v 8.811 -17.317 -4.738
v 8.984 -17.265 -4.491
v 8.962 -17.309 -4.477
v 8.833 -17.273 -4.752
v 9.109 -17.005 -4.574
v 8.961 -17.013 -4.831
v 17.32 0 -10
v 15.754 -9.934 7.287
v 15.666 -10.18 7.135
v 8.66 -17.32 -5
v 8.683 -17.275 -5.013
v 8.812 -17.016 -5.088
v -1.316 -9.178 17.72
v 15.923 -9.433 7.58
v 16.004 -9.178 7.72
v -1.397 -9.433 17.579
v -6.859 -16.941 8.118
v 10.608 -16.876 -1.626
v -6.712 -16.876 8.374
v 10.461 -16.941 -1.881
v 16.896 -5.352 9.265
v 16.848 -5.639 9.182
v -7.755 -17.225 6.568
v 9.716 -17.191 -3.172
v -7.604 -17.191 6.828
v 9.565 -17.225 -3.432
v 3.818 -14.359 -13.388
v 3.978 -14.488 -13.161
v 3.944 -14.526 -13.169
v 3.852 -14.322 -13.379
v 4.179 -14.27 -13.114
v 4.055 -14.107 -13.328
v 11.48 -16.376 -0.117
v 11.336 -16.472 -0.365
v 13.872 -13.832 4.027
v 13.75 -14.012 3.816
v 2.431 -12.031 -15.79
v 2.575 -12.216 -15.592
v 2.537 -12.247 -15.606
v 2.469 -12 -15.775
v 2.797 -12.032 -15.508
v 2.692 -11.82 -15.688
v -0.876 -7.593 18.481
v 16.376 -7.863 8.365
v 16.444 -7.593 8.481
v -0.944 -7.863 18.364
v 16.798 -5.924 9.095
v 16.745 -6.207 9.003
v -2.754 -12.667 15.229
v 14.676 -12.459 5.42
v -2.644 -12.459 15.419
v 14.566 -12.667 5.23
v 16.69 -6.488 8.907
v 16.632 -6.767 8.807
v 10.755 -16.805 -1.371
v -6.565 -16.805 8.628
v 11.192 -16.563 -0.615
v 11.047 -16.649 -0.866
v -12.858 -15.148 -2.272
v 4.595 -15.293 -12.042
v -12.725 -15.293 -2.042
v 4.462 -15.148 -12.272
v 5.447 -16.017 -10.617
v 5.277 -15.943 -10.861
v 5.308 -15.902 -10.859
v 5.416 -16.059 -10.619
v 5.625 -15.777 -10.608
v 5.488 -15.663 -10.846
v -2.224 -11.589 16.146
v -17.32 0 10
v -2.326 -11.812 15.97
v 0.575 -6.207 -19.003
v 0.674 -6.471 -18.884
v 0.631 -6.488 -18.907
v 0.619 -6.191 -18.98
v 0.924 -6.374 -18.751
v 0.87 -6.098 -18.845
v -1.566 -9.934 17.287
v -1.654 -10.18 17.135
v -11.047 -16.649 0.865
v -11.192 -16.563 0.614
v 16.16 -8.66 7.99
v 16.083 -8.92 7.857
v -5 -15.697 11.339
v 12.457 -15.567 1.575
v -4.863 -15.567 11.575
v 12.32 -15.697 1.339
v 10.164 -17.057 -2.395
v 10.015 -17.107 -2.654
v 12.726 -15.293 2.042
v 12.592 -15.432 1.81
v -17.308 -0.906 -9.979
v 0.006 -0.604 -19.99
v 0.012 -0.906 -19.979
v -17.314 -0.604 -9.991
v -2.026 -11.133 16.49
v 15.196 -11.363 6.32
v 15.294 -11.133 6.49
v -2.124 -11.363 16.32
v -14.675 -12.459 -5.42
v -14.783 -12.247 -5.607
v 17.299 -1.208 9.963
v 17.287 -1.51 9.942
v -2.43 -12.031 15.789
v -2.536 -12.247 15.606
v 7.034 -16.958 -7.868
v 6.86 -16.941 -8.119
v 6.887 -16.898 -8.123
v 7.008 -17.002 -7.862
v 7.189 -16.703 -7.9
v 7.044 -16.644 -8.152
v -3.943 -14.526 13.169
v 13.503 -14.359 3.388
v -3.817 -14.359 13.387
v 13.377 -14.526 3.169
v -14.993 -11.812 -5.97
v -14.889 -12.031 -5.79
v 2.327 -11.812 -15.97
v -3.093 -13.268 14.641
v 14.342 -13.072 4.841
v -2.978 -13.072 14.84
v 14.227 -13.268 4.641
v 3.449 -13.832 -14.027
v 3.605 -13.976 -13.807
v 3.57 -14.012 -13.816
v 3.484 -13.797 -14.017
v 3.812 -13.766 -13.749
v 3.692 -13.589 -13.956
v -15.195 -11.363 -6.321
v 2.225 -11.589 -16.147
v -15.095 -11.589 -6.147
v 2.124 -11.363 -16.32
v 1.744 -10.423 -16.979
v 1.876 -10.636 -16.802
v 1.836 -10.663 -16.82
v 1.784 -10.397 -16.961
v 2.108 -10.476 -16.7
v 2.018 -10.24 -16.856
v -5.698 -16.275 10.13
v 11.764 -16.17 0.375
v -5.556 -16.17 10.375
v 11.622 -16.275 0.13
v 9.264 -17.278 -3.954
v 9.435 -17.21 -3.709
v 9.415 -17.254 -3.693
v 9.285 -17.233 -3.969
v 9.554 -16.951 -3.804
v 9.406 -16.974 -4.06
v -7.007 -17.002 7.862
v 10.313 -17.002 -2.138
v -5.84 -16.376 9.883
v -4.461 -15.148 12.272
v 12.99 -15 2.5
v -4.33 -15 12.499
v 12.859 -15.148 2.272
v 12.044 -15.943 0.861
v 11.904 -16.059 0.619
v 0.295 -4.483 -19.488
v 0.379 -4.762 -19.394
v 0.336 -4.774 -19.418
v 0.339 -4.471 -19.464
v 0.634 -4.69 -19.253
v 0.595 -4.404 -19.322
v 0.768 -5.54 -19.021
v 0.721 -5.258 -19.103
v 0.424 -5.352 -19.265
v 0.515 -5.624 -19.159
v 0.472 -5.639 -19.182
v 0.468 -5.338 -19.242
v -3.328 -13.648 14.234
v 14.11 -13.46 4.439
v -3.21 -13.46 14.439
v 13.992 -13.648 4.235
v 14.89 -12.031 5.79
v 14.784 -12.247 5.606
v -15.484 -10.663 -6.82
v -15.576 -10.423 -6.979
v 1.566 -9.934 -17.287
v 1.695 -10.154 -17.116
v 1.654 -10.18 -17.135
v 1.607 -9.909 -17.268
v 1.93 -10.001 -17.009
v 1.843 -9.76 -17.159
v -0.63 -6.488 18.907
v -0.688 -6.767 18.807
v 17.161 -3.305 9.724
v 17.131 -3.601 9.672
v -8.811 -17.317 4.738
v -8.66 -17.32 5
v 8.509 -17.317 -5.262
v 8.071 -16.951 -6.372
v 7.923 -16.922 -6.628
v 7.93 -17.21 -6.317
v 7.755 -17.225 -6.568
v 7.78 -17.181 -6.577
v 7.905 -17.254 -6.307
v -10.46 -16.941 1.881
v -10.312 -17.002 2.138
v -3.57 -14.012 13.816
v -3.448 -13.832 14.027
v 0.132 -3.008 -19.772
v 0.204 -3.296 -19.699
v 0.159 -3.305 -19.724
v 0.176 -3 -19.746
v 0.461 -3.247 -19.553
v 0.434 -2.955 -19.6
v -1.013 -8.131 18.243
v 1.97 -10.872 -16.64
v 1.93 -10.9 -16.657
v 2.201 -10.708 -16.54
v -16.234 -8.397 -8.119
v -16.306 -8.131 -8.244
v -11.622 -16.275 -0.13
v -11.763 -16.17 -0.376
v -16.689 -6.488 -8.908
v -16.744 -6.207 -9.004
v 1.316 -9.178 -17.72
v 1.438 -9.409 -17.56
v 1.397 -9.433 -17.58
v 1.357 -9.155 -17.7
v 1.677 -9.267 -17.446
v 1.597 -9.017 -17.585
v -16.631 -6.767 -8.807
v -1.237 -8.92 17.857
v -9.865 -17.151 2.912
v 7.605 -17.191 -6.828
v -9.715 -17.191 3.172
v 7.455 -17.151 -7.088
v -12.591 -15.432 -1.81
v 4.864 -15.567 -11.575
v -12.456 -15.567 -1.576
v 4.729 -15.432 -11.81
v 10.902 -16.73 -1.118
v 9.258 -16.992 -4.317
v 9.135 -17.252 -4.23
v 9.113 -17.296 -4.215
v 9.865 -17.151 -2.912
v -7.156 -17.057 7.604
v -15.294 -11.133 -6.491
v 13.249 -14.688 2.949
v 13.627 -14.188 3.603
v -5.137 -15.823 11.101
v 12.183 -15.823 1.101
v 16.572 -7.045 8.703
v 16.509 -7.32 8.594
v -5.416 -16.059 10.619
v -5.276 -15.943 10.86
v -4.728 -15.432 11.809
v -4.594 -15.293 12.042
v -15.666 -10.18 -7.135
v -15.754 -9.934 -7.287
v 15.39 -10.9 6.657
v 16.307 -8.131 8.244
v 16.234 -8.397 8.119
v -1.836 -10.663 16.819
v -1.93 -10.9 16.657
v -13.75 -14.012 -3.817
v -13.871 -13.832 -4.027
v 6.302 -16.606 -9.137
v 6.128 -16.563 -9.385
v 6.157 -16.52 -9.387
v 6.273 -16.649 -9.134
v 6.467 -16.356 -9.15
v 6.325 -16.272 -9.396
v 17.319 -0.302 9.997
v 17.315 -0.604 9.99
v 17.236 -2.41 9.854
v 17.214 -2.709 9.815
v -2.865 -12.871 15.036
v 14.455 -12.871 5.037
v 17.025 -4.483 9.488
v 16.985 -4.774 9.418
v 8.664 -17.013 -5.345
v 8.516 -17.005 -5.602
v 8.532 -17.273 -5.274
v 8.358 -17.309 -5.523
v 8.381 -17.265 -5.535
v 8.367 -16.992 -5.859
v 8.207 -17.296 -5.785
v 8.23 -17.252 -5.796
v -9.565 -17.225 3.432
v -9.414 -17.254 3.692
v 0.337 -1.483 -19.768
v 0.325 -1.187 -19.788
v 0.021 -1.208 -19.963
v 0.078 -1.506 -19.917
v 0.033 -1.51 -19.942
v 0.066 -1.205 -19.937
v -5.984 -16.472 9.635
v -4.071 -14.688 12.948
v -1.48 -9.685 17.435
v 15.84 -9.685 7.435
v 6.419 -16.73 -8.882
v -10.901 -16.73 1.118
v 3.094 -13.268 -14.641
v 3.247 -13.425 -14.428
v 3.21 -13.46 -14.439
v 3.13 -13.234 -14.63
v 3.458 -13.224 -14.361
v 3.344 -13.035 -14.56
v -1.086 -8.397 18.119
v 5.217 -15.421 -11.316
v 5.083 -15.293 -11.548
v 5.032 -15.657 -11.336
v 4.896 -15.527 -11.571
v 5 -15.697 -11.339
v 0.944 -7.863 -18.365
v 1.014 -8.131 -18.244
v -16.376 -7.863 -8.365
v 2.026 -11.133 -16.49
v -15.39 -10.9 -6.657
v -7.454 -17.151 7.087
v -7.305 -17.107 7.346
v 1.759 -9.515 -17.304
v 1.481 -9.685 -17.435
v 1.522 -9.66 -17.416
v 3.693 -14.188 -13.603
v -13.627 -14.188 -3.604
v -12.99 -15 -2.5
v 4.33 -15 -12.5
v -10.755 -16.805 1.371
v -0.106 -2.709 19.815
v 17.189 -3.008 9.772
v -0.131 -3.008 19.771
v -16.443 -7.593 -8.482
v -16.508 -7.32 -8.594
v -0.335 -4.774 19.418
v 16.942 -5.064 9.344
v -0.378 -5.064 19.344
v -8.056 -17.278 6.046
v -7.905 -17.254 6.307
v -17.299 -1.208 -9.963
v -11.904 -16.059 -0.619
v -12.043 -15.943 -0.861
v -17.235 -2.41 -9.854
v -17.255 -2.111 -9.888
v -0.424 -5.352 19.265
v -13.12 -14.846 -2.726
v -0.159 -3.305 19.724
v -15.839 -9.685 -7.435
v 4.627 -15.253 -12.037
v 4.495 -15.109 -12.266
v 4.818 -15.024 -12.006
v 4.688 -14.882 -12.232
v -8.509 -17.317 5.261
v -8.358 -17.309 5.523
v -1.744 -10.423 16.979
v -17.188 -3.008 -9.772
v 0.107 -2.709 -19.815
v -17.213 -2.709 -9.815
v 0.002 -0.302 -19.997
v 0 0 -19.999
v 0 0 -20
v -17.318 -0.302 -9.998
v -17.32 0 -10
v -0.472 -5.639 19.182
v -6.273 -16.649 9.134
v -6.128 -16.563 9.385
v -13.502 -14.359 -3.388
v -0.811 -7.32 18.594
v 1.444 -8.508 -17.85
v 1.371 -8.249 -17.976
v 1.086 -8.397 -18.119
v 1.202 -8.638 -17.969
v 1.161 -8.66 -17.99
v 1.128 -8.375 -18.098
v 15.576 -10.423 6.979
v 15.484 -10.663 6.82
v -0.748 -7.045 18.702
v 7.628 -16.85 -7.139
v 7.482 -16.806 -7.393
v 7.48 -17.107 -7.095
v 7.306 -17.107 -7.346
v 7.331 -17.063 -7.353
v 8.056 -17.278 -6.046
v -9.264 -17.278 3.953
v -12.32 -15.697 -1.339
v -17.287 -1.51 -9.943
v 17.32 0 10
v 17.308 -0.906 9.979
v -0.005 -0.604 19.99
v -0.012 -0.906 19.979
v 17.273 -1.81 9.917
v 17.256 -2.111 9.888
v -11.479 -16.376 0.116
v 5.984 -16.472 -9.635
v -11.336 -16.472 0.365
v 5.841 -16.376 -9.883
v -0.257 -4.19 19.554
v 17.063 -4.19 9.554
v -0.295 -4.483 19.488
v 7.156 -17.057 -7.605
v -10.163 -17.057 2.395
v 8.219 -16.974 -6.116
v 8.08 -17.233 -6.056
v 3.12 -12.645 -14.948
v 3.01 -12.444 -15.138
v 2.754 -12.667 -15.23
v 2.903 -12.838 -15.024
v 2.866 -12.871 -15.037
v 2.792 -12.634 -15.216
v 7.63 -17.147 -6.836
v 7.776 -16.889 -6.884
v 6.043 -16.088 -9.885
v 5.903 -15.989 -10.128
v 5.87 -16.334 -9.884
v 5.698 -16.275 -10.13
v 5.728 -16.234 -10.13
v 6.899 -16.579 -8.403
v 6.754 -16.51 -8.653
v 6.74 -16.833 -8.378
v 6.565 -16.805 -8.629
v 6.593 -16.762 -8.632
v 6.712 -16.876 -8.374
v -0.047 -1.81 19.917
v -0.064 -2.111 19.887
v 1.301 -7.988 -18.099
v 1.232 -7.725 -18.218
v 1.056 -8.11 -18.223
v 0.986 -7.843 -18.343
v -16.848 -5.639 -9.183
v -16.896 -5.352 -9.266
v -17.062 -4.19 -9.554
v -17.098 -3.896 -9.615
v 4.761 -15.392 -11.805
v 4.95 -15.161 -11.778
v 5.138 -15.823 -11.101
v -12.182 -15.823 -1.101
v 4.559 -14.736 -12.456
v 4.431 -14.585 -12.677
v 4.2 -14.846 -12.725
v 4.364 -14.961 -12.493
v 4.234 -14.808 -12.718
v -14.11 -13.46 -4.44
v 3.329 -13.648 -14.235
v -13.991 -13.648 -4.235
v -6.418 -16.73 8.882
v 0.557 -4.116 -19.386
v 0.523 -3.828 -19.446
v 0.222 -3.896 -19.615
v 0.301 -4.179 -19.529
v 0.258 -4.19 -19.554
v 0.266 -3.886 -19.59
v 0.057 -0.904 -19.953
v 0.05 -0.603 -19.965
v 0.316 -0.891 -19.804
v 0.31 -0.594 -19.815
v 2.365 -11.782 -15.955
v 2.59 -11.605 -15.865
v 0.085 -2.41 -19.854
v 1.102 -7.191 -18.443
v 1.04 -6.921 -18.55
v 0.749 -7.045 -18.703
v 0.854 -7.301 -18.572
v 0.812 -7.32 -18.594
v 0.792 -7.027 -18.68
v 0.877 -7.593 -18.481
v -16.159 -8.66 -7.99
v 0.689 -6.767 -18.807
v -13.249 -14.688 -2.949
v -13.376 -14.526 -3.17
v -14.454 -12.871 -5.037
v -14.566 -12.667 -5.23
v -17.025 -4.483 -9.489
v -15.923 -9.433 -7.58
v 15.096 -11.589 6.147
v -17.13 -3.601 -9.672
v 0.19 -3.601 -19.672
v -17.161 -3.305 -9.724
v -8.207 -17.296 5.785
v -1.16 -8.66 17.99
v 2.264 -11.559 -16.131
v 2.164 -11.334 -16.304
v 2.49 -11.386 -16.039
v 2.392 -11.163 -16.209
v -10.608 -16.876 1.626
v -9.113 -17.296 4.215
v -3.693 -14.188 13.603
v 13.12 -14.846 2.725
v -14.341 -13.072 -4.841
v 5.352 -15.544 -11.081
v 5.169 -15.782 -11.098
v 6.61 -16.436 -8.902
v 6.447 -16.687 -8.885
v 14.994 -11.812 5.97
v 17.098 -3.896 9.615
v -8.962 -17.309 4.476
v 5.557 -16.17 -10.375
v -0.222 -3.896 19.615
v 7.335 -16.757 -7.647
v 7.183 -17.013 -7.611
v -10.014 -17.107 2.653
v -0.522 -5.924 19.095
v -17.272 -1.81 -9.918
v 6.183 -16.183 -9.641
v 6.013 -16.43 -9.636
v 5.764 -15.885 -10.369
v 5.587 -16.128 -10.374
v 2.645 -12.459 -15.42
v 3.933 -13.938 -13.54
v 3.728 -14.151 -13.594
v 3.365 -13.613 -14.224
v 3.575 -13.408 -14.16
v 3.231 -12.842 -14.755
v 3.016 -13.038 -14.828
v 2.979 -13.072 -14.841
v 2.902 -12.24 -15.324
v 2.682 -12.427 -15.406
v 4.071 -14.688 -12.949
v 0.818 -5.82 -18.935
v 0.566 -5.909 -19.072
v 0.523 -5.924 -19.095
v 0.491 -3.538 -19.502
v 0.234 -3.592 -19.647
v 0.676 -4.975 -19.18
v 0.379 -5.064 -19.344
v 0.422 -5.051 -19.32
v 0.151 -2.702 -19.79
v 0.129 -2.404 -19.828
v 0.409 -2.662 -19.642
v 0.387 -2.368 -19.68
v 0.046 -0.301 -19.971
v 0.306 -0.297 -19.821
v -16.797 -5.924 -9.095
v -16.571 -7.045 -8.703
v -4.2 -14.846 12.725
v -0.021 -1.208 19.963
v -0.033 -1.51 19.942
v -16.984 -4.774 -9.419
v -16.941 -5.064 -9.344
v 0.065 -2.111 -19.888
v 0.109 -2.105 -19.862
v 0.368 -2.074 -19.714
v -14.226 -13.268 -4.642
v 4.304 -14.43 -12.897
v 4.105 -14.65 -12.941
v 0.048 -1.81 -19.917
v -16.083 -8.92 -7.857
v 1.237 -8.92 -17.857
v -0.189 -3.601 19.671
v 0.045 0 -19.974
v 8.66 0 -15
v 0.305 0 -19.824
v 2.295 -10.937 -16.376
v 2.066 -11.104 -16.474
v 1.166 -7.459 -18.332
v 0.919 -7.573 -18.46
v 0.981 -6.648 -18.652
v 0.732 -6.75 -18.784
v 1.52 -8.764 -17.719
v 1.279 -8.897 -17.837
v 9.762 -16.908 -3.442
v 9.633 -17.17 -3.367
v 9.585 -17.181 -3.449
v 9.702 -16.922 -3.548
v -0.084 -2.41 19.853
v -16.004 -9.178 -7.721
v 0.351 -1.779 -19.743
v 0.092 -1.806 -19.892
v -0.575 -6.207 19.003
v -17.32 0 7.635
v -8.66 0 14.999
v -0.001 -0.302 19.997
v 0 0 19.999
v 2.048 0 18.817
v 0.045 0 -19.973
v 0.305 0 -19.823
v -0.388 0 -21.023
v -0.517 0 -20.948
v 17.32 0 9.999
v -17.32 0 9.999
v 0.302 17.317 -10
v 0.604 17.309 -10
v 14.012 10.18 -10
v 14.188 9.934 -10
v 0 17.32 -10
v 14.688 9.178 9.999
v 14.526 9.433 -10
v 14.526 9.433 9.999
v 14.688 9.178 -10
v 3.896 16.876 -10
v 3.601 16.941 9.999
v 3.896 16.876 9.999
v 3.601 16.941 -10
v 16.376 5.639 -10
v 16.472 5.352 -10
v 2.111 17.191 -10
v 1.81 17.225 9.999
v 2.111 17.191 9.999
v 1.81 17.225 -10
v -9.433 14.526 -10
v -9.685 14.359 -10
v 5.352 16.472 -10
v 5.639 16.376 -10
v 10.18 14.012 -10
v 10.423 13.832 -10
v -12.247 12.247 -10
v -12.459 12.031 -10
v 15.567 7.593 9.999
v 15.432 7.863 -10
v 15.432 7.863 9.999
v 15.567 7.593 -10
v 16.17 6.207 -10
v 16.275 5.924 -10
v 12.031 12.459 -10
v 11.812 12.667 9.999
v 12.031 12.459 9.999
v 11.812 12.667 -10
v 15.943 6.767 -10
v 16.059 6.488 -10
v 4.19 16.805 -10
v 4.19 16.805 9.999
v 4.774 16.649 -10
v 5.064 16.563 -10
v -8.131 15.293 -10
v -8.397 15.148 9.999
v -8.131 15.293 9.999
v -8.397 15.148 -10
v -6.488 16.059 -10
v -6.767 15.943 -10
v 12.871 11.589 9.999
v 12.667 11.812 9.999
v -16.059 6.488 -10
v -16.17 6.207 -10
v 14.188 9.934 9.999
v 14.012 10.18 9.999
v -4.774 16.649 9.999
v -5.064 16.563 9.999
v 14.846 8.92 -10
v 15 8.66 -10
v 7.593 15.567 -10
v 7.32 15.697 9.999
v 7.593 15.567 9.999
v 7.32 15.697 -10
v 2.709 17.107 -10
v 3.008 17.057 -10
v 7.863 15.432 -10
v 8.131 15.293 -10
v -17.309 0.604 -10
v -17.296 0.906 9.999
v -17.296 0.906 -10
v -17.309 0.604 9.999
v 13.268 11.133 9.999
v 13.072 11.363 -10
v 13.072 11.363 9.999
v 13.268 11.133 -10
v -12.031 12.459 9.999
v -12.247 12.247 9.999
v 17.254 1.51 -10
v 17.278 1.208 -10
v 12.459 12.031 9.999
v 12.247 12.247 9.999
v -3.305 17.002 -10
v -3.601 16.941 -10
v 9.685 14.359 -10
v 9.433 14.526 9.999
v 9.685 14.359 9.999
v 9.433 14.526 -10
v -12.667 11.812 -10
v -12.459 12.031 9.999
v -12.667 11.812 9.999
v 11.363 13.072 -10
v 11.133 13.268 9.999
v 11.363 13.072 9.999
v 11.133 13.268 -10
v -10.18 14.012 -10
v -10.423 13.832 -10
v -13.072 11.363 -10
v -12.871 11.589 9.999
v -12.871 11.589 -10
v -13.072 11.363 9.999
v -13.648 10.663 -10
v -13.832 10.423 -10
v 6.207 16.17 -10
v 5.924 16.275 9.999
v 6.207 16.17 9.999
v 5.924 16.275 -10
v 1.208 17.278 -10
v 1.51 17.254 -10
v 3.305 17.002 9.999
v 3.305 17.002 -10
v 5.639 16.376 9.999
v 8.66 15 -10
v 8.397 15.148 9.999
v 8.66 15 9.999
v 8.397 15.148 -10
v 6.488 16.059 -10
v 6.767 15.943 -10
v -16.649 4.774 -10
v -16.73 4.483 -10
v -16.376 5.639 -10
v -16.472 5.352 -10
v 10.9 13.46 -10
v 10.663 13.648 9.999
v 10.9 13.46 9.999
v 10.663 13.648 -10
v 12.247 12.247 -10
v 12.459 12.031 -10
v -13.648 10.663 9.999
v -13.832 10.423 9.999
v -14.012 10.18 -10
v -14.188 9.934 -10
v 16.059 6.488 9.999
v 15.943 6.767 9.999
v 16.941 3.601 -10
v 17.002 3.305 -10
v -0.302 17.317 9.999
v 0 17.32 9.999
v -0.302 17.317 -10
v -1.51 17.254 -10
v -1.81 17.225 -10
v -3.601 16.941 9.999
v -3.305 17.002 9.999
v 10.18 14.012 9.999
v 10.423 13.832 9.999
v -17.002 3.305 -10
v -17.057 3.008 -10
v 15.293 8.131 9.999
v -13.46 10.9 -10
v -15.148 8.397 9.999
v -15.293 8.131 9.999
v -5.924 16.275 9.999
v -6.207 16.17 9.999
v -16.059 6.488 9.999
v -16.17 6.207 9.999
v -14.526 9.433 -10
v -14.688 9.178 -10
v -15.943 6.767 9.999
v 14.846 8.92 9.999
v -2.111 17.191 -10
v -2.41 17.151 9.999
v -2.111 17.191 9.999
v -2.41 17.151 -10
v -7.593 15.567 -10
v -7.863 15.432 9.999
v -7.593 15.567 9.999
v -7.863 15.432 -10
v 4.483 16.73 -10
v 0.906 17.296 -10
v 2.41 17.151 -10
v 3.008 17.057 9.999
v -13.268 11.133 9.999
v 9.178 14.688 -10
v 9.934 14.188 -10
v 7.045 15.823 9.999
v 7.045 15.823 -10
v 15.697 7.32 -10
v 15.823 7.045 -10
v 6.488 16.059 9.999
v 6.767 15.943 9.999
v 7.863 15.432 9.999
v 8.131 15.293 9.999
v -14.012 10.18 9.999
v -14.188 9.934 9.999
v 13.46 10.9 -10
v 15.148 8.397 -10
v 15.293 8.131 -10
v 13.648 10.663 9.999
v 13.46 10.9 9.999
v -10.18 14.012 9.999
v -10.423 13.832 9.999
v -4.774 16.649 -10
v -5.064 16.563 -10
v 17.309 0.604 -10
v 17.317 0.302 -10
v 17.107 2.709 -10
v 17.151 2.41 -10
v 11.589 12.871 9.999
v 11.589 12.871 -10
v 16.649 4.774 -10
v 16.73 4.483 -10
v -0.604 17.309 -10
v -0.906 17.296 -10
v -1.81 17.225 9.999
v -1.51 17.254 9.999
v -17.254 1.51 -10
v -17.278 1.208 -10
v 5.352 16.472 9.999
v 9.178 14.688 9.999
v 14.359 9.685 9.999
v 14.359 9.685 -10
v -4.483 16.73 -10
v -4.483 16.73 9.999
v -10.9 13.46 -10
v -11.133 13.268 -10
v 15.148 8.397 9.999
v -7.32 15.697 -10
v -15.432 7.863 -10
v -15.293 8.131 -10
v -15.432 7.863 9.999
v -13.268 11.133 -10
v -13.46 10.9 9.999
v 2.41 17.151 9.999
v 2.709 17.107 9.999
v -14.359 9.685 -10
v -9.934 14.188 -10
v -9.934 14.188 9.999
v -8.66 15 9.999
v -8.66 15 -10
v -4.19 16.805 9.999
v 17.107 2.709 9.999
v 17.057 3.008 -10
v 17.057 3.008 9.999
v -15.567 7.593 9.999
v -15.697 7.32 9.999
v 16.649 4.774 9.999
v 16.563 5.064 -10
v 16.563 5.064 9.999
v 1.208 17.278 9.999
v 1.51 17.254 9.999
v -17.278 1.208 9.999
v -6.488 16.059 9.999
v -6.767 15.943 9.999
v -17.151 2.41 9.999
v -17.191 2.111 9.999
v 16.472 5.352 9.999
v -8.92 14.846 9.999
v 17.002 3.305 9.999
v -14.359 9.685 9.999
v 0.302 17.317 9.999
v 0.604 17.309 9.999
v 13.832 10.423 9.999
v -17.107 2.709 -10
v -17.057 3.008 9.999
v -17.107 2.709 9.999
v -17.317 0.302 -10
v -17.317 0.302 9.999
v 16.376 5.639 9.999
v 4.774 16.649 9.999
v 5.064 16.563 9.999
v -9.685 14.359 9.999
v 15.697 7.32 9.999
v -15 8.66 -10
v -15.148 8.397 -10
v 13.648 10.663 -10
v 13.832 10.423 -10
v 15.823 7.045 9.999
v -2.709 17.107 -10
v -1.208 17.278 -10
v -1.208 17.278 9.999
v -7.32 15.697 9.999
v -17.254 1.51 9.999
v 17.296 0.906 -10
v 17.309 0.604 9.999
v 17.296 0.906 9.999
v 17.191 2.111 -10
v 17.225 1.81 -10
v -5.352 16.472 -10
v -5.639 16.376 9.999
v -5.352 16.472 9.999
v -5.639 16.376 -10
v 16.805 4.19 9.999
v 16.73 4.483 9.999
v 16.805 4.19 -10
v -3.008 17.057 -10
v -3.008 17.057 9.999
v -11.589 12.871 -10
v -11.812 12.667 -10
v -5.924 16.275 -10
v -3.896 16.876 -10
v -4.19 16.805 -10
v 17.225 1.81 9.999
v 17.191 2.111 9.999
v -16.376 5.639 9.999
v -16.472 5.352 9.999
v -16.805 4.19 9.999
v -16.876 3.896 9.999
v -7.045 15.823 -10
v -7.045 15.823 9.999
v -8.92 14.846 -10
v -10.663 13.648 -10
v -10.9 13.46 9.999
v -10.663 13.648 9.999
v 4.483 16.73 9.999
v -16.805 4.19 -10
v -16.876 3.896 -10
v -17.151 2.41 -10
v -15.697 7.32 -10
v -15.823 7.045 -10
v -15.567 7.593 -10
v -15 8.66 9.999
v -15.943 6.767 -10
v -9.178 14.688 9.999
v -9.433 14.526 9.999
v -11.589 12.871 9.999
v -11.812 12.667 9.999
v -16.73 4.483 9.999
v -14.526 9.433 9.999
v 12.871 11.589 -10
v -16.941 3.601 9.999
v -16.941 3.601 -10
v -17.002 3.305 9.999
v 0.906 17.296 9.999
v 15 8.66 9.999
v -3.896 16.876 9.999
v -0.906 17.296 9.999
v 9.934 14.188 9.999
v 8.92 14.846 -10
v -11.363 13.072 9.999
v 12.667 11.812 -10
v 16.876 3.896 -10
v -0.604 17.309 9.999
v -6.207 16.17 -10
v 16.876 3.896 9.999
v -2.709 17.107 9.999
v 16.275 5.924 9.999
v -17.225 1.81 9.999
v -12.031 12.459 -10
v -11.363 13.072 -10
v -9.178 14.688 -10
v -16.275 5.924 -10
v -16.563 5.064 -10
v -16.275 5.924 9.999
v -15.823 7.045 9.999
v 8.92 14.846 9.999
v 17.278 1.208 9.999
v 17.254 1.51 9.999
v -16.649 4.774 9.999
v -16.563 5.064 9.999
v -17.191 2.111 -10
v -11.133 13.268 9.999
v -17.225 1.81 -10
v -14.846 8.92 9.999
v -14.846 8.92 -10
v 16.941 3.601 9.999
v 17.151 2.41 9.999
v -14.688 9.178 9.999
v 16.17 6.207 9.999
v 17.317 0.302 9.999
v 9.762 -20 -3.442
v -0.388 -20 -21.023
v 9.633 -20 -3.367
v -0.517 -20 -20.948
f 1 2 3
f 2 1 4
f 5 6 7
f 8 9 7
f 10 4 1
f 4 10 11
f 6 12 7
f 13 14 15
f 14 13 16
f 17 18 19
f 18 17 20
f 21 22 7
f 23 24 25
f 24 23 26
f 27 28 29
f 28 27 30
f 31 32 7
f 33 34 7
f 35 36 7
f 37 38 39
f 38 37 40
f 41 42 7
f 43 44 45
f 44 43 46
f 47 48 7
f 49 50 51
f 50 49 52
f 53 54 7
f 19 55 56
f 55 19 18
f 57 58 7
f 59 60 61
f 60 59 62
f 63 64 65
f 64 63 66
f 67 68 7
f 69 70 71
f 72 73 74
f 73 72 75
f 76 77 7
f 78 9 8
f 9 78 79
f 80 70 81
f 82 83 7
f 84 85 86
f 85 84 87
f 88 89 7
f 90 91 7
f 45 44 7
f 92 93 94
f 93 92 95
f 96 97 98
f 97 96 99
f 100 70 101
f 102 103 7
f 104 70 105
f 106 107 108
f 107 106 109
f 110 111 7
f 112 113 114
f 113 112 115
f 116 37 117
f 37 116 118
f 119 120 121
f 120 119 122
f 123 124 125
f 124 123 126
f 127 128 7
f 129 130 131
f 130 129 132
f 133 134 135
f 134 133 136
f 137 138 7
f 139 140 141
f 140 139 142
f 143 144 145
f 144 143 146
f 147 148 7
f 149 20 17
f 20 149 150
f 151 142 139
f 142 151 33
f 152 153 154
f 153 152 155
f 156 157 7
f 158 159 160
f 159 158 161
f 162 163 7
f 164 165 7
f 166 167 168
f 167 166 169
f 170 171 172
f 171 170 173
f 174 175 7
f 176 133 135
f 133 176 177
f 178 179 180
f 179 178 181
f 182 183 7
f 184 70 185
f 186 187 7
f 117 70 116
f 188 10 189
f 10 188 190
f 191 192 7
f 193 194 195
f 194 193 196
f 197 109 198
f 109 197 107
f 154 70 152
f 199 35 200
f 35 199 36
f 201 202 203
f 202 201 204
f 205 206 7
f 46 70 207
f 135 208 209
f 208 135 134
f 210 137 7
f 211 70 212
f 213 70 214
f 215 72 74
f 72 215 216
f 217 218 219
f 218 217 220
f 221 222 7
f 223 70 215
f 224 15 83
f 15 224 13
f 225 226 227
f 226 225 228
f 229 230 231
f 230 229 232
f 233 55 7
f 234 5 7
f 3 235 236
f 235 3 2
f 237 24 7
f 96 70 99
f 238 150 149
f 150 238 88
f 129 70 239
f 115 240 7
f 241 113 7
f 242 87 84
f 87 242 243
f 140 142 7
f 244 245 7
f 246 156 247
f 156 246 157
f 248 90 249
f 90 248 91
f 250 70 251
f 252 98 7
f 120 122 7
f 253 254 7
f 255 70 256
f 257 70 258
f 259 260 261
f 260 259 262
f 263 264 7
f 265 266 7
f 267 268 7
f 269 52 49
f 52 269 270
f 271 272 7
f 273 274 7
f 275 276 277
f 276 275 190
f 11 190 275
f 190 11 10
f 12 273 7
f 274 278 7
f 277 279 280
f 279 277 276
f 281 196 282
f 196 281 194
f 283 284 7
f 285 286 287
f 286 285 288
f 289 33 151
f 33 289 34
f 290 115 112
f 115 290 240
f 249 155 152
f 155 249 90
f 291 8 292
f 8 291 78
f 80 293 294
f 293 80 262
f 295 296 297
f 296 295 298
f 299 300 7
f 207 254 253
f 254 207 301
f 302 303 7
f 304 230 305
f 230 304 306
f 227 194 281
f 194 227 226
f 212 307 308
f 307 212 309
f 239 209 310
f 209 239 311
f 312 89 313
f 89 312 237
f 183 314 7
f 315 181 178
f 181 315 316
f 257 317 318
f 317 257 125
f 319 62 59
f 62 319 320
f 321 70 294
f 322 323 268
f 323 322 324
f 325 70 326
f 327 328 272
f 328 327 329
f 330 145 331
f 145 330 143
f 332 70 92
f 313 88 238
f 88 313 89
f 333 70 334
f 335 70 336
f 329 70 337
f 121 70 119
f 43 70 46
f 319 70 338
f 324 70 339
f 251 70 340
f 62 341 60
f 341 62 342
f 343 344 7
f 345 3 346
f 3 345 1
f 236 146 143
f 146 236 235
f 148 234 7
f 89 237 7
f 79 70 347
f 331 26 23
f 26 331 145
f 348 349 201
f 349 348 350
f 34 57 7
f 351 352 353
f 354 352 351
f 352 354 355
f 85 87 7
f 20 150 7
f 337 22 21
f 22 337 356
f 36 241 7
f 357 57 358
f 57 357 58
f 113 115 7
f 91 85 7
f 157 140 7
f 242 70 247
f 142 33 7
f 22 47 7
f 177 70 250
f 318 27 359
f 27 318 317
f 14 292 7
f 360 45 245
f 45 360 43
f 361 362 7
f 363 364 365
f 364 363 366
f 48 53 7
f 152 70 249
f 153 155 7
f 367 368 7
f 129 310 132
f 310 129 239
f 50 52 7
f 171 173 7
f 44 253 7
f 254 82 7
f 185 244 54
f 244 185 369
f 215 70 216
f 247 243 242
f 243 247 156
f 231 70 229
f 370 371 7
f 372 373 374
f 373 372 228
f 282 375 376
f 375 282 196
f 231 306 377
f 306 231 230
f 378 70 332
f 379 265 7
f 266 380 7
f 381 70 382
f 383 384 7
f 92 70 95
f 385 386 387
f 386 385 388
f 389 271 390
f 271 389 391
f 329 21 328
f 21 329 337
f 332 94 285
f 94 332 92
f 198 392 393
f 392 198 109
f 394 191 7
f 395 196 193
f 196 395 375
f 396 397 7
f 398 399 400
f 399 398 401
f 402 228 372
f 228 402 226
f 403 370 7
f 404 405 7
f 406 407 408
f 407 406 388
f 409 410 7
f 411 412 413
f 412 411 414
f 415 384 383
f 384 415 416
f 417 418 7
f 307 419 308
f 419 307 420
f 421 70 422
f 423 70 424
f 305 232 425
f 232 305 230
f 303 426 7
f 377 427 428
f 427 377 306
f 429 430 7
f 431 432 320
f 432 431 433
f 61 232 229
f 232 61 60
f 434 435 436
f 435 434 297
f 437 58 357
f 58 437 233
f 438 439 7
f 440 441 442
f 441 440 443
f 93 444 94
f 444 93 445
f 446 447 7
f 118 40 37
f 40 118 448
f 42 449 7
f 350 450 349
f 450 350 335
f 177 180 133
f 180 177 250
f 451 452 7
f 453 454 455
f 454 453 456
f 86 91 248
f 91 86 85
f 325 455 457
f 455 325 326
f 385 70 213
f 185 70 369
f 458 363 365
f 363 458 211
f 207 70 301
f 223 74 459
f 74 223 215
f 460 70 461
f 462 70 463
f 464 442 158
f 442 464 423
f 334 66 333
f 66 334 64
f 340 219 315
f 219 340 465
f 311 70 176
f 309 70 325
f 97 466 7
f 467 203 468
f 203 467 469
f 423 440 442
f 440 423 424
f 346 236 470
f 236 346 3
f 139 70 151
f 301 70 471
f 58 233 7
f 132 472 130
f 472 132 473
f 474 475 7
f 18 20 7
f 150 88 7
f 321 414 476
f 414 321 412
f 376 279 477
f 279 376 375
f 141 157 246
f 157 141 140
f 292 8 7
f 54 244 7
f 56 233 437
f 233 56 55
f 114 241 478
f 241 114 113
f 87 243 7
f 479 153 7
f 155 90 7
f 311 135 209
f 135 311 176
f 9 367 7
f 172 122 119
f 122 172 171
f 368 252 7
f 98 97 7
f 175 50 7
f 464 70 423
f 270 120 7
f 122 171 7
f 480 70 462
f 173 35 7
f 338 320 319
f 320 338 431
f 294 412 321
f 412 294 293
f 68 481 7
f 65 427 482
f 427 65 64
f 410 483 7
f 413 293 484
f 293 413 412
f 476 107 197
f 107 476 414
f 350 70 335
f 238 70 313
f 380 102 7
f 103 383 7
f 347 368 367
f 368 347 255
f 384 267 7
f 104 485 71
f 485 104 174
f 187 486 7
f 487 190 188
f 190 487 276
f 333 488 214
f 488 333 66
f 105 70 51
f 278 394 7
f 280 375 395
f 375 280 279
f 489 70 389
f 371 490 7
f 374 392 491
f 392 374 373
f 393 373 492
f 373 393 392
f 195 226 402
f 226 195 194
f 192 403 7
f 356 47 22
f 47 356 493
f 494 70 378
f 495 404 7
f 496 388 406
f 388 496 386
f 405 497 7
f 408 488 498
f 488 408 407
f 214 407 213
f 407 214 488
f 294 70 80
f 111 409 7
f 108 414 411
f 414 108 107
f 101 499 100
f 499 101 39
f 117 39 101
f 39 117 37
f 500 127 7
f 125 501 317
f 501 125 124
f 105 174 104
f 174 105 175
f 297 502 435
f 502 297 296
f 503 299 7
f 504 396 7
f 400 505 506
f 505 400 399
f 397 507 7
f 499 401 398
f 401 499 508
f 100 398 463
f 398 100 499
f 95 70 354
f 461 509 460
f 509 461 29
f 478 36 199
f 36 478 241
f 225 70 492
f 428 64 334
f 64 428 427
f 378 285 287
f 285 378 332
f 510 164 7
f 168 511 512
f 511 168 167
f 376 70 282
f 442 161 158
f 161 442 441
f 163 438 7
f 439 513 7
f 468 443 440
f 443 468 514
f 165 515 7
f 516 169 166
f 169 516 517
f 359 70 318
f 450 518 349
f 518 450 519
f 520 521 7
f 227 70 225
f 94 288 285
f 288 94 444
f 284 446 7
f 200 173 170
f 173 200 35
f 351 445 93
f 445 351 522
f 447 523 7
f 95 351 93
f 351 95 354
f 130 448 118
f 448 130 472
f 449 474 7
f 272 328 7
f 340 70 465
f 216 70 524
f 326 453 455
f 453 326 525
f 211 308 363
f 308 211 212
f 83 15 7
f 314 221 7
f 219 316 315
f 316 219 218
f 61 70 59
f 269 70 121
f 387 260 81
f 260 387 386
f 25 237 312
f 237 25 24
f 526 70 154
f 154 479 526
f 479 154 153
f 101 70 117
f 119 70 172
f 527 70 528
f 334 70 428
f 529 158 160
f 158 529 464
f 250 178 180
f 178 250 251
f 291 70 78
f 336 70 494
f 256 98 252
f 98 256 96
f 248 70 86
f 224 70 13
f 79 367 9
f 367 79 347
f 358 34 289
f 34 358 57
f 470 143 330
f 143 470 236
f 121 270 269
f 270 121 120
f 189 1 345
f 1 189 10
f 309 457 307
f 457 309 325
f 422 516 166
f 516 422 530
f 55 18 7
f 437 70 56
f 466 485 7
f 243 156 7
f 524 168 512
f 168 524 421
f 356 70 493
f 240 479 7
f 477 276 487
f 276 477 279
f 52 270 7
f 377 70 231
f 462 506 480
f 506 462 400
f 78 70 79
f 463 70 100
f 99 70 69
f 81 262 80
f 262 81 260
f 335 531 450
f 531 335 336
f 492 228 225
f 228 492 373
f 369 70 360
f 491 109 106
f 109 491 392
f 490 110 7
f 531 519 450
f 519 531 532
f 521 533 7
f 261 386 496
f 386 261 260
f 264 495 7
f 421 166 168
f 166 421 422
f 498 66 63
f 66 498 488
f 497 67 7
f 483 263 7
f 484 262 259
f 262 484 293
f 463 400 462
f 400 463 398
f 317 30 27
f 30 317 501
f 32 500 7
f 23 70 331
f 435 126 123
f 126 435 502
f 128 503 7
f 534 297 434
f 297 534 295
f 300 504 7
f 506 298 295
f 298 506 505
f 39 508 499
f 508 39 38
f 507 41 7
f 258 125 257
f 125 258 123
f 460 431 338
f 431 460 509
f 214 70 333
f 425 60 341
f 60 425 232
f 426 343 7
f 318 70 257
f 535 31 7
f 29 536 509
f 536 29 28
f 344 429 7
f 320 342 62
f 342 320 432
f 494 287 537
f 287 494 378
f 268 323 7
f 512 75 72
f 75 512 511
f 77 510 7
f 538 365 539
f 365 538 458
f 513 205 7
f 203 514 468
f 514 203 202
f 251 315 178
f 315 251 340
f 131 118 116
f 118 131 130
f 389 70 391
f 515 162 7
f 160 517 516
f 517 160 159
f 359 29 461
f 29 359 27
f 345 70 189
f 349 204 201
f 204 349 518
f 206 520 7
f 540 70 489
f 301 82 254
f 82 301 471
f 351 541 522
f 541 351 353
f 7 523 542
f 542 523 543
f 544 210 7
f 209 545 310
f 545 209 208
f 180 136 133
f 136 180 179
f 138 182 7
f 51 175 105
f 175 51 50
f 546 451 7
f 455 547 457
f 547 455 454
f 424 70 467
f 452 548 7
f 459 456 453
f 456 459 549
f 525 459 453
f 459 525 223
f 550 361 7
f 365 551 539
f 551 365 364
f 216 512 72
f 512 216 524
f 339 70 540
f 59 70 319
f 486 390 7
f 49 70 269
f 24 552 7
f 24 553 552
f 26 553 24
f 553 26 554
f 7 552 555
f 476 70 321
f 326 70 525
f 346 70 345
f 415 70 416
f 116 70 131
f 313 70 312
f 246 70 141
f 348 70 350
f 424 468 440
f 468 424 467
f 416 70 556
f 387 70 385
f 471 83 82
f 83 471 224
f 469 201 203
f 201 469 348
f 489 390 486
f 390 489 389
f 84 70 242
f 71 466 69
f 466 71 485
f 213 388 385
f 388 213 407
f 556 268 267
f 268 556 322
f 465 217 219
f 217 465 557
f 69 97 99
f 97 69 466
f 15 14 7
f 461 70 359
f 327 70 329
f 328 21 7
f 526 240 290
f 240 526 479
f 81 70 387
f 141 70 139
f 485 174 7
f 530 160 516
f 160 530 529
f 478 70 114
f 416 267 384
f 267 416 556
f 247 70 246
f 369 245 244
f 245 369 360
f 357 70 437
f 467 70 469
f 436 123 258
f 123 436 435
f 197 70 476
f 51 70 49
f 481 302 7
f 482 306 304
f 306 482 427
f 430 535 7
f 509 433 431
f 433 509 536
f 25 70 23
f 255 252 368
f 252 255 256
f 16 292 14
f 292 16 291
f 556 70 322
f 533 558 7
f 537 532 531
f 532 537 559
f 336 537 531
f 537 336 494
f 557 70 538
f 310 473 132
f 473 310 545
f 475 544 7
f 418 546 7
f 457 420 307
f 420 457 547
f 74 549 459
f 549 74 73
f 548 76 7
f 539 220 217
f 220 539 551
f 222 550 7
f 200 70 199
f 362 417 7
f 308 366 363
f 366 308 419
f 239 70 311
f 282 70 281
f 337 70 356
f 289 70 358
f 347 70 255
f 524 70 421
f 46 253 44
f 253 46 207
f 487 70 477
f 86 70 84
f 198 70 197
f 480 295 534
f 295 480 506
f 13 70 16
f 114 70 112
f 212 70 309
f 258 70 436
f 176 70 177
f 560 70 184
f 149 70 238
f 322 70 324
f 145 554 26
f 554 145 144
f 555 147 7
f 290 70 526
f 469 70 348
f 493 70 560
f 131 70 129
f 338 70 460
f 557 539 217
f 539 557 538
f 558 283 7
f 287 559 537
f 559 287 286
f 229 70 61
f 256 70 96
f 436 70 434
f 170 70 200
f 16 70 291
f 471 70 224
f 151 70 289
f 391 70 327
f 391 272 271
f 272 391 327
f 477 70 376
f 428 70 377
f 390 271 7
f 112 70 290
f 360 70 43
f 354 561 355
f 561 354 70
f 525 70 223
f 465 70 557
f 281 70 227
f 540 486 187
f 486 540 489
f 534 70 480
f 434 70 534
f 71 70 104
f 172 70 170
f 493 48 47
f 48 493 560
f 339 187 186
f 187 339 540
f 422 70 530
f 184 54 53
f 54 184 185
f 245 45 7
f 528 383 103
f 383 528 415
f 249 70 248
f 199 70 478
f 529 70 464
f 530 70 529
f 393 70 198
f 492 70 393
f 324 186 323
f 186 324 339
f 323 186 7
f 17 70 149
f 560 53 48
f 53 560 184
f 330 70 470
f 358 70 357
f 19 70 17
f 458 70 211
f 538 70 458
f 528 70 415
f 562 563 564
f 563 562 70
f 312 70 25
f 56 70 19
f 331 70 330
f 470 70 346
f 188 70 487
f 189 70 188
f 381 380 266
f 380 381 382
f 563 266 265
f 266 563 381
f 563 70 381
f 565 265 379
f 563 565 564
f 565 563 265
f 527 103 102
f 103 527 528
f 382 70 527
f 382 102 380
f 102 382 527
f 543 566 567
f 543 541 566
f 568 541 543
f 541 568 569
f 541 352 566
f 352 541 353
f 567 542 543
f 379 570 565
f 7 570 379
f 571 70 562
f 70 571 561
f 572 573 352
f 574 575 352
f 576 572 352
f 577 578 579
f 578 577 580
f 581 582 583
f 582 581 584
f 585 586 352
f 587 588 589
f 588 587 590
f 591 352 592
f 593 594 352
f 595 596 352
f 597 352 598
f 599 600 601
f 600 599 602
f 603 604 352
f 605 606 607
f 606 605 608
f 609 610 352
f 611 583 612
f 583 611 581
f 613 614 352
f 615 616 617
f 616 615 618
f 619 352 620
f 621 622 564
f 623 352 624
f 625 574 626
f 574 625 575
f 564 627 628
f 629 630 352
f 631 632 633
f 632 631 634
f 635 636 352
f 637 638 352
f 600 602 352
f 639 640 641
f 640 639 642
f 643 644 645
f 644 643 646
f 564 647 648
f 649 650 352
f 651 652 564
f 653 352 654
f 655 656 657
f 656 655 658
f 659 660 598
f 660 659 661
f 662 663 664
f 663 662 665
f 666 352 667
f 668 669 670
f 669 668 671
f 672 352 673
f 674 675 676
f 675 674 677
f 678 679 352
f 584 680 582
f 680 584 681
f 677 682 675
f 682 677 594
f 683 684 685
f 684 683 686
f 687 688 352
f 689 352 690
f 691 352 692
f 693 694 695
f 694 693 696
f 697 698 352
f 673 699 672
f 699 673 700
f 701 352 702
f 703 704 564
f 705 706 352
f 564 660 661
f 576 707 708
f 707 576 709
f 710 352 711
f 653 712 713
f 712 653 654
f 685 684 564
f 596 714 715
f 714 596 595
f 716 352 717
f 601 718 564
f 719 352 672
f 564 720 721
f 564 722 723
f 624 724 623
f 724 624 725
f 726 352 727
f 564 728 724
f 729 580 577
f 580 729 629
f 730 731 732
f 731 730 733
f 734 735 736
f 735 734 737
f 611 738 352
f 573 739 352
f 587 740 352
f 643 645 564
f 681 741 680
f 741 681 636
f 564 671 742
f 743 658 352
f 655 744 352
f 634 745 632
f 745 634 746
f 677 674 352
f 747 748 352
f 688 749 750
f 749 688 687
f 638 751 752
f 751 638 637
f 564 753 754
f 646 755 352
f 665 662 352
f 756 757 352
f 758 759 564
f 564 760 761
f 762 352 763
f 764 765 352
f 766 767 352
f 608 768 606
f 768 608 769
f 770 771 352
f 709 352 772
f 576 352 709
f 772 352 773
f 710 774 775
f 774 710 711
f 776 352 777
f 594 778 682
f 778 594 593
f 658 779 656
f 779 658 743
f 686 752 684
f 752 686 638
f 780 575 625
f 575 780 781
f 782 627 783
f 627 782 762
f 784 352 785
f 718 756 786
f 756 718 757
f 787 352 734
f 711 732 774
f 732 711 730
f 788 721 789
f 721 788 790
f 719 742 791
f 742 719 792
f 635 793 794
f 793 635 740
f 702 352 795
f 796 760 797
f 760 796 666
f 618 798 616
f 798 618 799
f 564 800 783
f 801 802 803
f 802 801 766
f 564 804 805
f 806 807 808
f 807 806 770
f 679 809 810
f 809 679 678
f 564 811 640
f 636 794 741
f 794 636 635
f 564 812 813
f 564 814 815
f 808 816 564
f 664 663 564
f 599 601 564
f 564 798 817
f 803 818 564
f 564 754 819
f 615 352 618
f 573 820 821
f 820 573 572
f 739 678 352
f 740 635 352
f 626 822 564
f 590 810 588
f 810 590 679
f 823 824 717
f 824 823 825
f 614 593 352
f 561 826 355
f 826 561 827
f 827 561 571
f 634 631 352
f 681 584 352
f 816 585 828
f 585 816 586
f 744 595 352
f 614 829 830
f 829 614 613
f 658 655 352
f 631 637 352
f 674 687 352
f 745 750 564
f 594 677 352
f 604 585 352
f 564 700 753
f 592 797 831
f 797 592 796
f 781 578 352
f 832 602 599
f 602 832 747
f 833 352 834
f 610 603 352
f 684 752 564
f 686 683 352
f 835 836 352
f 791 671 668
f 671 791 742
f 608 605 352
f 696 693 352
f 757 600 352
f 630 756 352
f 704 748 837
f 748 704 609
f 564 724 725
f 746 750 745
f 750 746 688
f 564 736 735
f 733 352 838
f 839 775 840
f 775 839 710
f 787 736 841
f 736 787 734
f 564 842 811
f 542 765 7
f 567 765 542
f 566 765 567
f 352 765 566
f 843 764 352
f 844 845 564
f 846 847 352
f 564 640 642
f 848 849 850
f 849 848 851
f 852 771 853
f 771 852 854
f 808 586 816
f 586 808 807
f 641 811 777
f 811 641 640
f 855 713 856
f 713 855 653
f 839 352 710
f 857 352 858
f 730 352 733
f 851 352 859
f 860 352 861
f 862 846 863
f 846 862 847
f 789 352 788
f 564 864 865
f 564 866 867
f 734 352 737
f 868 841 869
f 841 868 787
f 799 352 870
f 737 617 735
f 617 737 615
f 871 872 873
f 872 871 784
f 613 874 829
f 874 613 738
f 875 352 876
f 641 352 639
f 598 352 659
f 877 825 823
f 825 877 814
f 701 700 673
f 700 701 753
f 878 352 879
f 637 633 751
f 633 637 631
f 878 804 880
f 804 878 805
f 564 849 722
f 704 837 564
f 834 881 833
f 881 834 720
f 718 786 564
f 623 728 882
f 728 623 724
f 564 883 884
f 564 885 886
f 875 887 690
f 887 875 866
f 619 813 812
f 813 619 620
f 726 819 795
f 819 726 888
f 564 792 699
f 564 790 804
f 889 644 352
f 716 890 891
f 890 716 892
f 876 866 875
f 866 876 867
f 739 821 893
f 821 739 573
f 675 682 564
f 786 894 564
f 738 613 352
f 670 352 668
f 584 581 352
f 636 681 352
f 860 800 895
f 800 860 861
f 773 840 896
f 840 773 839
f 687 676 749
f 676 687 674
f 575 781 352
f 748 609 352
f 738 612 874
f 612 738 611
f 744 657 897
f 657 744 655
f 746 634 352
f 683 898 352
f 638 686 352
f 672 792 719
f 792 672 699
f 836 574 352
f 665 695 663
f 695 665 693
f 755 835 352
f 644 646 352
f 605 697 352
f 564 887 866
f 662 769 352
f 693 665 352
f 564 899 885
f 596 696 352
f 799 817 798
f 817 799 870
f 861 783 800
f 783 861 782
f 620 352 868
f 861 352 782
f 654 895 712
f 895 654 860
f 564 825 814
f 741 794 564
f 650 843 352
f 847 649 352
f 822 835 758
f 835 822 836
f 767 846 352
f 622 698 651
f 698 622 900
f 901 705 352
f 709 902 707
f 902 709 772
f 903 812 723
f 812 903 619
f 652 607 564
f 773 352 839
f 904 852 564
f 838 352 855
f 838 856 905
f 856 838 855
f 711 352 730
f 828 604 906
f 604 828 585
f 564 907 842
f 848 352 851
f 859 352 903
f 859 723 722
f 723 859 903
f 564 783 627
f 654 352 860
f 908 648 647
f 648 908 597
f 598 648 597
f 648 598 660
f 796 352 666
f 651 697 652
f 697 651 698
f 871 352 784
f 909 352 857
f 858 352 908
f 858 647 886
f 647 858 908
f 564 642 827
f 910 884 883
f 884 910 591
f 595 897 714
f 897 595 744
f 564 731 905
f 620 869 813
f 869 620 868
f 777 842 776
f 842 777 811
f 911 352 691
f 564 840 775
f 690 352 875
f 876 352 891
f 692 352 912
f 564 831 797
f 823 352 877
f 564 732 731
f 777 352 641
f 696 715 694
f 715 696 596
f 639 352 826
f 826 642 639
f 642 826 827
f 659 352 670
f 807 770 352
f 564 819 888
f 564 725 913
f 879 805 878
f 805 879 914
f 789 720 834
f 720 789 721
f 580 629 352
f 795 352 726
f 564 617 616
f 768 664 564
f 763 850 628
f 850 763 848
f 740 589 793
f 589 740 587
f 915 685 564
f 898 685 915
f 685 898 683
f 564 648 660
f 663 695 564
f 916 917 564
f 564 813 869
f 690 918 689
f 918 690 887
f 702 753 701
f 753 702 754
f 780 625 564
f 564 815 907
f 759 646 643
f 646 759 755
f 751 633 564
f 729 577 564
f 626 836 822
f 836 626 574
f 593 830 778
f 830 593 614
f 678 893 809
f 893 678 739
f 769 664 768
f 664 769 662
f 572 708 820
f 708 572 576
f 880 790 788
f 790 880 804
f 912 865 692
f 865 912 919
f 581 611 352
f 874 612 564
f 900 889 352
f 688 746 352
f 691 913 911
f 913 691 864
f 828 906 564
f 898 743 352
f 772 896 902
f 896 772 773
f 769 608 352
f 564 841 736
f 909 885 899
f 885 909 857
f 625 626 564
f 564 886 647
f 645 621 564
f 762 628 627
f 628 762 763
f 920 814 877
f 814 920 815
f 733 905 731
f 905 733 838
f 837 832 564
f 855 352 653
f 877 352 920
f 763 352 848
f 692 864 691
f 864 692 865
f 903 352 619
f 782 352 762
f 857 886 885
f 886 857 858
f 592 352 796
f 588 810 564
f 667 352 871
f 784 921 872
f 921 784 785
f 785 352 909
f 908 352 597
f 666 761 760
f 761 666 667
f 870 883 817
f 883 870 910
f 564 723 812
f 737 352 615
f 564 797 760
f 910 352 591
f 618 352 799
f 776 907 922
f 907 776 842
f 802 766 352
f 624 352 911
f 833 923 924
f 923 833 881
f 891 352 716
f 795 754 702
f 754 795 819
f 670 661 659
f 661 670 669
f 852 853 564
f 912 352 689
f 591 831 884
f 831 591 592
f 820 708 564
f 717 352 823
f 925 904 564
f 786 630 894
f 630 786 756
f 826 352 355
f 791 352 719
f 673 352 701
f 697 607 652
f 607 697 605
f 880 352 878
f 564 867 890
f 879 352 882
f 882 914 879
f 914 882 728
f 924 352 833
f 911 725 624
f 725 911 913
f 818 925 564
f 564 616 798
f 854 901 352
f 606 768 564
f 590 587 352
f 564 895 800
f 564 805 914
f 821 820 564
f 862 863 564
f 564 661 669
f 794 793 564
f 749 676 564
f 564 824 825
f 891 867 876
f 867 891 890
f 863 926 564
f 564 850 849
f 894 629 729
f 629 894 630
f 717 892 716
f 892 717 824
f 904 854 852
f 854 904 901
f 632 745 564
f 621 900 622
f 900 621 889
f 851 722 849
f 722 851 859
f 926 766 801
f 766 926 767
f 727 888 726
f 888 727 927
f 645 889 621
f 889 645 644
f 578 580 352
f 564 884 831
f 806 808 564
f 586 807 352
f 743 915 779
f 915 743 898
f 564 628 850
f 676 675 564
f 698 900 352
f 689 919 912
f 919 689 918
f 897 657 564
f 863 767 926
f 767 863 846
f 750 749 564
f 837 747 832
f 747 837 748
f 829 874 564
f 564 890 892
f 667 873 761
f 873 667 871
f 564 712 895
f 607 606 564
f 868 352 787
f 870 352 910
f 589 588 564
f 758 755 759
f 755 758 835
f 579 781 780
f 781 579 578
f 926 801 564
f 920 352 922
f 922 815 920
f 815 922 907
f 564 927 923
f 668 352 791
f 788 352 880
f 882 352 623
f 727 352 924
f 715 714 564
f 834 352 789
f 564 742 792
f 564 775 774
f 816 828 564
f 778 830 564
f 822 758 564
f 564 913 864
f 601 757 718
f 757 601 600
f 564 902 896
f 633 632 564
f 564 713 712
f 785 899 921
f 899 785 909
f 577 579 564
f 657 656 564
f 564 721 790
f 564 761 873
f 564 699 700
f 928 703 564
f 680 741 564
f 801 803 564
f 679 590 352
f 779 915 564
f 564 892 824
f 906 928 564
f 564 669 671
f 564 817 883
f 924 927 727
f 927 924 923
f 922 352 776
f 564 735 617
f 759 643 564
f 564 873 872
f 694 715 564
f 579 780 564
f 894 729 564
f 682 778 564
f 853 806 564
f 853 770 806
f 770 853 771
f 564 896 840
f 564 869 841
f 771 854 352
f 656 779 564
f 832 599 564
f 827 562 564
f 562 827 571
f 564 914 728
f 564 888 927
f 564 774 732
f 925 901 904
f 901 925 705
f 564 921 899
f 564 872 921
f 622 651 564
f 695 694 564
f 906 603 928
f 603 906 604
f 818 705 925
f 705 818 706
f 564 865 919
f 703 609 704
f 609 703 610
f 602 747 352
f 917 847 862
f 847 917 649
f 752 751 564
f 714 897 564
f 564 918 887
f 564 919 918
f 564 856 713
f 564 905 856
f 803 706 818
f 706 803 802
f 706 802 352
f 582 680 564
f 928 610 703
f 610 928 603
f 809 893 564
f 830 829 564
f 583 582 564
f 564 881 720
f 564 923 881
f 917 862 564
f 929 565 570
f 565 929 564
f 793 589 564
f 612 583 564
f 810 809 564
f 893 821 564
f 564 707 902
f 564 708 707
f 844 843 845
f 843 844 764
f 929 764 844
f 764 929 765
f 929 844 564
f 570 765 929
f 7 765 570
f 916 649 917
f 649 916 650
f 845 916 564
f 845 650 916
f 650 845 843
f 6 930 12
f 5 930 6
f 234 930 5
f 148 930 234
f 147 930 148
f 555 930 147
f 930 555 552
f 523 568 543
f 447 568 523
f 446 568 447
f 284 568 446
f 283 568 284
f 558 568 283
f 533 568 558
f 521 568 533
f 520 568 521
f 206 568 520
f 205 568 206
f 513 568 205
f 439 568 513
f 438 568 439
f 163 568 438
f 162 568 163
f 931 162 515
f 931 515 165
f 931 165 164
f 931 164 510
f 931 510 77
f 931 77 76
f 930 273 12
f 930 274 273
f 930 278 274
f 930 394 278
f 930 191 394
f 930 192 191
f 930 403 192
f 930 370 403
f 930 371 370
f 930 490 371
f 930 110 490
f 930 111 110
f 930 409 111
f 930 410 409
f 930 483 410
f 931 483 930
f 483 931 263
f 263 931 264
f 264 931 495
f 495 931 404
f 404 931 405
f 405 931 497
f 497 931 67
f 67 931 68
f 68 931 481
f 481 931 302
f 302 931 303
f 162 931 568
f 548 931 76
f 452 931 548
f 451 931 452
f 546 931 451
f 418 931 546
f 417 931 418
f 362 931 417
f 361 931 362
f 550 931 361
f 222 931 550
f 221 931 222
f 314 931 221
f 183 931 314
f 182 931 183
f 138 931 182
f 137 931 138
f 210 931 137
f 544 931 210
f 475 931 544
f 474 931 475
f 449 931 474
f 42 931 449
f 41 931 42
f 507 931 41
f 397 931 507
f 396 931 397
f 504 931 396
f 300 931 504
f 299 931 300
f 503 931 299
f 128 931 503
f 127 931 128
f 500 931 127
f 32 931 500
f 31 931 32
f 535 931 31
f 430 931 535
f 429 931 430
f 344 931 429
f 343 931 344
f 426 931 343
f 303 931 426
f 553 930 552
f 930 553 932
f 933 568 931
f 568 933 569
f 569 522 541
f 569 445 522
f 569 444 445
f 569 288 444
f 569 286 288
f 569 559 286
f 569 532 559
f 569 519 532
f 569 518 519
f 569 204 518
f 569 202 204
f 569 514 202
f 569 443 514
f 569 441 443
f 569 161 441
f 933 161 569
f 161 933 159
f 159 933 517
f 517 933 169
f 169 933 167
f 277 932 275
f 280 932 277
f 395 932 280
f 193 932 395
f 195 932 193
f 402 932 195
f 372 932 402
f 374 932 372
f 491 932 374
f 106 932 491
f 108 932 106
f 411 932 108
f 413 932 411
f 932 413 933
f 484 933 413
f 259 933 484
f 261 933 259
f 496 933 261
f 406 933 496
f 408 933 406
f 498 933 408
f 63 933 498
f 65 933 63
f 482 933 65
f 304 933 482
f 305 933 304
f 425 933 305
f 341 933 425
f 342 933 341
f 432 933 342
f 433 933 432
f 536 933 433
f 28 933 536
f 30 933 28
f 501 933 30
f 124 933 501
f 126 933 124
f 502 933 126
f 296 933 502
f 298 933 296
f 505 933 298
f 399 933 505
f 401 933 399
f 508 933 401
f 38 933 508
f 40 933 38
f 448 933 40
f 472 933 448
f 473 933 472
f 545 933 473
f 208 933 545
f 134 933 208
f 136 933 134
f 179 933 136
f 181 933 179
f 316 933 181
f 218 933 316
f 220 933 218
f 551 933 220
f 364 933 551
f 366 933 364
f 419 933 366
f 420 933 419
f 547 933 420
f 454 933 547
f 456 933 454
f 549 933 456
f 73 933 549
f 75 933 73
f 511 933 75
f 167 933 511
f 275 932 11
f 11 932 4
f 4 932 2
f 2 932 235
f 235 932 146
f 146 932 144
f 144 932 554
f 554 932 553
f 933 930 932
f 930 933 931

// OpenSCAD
D    = 40.0;
WALL =  0.15;
ATOM =  0.01;
$fn = 200;
N = 6;

module half_cyl() {
    difference() {
        // rotated hexagon
        rotate_extrude(angle=360, $fn=360)
        difference() {
            rotate([0, 0, N/4==floor(N/4) ? 0 : 180/N])
            circle(r=.5, $fn=N);
            translate([-1, -.5]) square([1, 1]);
        }
        
        // remove half
        translate([0, -.5, -.5])
        cube(1);
    }
}

module hexasphericon(size) {
    scale([size, size, size]) {
        half_cyl();

        rotate([360/N, 0, 0])
        scale([-1, 1, 1])
        half_cyl();
    }
}

module support() {
    extra = 2;
    h = D/2;
    l = D/2;
    d = D * .5;
    dd = D/7;
    layer = .3*2;
 
    r = D*sqrt(3)/4;
    
    translate([0, 0, -D/2 - layer]) 
    difference() {
        cylinder(r=r, h=D/2);
        cylinder(r=r-WALL, h=D*3, center=true);
        translate([-D, -D*2, -ATOM])
        cube(D*2);
    }

    translate([0, -D, -D/2 - layer]) {
        intersection() {
            difference() {
                union() {
                    rotate([0, 30, 0])
                    translate([-WALL*sqrt(2)*2, 0, -WALL*2])
                    cube([WALL, D, D/2 + WALL*2]);

                    cylinder(d=d, h=h);
                }
                cylinder(d=d-WALL*2, h=h*3, center=true);
            }
            cylinder(d=D*10, h=D*sqrt(3)/4);
        }
    }
}


module support() {
    extra = 2;
    h = D/2;
    l = D/2;
    d = D * .5;
    dd = D/7;
    layer = .3*3;
 
    r = D*sqrt(3)/4;

    if(0)
    translate([D/2, 0, -D/2 - layer])
    cylinder(d=1, h=.3);



    translate([0, -D, -D/2 - layer]) {
        intersection() {
            difference() {
                union() {
                    rotate([0, 30, 0])
                    translate([-WALL*sqrt(2)*2, D/2, -WALL*2])
                    cube([WALL, D/2, D/2 + WALL*2]);
                }
            }
        }
    }

}


module hexasphericon_oriented() {
    rotate([00, 30, 0])
    rotate([90, 0, 0])
    rotate([0, 90, 0])
    hexasphericon(D);
}

module hexasphericon_final() {
    for (d=[D:-2:1]) {
        k0 = d / D;
        k1 = (d-1.5) / D;
        difference() {
            scale(k0)
            hexasphericon_oriented();

            scale(k1)
            hexasphericon_oriented();
        }
/*
        scale([1, 1, k*k])
        hexasphericon_oriented();

        scale([.75, .75, k0])
        hexasphericon_oriented();
        */
    }

    scale([.2, .2, 1])
    hexasphericon_oriented();

}

if(0)
difference() {
    hexasphericon_final();

    if ($preview) translate([0, 0, -D])
    cube(D*3);
}
//support();

//%cube(D, center=true);


//hexasphericon(D);
{
hexasphericon_oriented();
support();
}
